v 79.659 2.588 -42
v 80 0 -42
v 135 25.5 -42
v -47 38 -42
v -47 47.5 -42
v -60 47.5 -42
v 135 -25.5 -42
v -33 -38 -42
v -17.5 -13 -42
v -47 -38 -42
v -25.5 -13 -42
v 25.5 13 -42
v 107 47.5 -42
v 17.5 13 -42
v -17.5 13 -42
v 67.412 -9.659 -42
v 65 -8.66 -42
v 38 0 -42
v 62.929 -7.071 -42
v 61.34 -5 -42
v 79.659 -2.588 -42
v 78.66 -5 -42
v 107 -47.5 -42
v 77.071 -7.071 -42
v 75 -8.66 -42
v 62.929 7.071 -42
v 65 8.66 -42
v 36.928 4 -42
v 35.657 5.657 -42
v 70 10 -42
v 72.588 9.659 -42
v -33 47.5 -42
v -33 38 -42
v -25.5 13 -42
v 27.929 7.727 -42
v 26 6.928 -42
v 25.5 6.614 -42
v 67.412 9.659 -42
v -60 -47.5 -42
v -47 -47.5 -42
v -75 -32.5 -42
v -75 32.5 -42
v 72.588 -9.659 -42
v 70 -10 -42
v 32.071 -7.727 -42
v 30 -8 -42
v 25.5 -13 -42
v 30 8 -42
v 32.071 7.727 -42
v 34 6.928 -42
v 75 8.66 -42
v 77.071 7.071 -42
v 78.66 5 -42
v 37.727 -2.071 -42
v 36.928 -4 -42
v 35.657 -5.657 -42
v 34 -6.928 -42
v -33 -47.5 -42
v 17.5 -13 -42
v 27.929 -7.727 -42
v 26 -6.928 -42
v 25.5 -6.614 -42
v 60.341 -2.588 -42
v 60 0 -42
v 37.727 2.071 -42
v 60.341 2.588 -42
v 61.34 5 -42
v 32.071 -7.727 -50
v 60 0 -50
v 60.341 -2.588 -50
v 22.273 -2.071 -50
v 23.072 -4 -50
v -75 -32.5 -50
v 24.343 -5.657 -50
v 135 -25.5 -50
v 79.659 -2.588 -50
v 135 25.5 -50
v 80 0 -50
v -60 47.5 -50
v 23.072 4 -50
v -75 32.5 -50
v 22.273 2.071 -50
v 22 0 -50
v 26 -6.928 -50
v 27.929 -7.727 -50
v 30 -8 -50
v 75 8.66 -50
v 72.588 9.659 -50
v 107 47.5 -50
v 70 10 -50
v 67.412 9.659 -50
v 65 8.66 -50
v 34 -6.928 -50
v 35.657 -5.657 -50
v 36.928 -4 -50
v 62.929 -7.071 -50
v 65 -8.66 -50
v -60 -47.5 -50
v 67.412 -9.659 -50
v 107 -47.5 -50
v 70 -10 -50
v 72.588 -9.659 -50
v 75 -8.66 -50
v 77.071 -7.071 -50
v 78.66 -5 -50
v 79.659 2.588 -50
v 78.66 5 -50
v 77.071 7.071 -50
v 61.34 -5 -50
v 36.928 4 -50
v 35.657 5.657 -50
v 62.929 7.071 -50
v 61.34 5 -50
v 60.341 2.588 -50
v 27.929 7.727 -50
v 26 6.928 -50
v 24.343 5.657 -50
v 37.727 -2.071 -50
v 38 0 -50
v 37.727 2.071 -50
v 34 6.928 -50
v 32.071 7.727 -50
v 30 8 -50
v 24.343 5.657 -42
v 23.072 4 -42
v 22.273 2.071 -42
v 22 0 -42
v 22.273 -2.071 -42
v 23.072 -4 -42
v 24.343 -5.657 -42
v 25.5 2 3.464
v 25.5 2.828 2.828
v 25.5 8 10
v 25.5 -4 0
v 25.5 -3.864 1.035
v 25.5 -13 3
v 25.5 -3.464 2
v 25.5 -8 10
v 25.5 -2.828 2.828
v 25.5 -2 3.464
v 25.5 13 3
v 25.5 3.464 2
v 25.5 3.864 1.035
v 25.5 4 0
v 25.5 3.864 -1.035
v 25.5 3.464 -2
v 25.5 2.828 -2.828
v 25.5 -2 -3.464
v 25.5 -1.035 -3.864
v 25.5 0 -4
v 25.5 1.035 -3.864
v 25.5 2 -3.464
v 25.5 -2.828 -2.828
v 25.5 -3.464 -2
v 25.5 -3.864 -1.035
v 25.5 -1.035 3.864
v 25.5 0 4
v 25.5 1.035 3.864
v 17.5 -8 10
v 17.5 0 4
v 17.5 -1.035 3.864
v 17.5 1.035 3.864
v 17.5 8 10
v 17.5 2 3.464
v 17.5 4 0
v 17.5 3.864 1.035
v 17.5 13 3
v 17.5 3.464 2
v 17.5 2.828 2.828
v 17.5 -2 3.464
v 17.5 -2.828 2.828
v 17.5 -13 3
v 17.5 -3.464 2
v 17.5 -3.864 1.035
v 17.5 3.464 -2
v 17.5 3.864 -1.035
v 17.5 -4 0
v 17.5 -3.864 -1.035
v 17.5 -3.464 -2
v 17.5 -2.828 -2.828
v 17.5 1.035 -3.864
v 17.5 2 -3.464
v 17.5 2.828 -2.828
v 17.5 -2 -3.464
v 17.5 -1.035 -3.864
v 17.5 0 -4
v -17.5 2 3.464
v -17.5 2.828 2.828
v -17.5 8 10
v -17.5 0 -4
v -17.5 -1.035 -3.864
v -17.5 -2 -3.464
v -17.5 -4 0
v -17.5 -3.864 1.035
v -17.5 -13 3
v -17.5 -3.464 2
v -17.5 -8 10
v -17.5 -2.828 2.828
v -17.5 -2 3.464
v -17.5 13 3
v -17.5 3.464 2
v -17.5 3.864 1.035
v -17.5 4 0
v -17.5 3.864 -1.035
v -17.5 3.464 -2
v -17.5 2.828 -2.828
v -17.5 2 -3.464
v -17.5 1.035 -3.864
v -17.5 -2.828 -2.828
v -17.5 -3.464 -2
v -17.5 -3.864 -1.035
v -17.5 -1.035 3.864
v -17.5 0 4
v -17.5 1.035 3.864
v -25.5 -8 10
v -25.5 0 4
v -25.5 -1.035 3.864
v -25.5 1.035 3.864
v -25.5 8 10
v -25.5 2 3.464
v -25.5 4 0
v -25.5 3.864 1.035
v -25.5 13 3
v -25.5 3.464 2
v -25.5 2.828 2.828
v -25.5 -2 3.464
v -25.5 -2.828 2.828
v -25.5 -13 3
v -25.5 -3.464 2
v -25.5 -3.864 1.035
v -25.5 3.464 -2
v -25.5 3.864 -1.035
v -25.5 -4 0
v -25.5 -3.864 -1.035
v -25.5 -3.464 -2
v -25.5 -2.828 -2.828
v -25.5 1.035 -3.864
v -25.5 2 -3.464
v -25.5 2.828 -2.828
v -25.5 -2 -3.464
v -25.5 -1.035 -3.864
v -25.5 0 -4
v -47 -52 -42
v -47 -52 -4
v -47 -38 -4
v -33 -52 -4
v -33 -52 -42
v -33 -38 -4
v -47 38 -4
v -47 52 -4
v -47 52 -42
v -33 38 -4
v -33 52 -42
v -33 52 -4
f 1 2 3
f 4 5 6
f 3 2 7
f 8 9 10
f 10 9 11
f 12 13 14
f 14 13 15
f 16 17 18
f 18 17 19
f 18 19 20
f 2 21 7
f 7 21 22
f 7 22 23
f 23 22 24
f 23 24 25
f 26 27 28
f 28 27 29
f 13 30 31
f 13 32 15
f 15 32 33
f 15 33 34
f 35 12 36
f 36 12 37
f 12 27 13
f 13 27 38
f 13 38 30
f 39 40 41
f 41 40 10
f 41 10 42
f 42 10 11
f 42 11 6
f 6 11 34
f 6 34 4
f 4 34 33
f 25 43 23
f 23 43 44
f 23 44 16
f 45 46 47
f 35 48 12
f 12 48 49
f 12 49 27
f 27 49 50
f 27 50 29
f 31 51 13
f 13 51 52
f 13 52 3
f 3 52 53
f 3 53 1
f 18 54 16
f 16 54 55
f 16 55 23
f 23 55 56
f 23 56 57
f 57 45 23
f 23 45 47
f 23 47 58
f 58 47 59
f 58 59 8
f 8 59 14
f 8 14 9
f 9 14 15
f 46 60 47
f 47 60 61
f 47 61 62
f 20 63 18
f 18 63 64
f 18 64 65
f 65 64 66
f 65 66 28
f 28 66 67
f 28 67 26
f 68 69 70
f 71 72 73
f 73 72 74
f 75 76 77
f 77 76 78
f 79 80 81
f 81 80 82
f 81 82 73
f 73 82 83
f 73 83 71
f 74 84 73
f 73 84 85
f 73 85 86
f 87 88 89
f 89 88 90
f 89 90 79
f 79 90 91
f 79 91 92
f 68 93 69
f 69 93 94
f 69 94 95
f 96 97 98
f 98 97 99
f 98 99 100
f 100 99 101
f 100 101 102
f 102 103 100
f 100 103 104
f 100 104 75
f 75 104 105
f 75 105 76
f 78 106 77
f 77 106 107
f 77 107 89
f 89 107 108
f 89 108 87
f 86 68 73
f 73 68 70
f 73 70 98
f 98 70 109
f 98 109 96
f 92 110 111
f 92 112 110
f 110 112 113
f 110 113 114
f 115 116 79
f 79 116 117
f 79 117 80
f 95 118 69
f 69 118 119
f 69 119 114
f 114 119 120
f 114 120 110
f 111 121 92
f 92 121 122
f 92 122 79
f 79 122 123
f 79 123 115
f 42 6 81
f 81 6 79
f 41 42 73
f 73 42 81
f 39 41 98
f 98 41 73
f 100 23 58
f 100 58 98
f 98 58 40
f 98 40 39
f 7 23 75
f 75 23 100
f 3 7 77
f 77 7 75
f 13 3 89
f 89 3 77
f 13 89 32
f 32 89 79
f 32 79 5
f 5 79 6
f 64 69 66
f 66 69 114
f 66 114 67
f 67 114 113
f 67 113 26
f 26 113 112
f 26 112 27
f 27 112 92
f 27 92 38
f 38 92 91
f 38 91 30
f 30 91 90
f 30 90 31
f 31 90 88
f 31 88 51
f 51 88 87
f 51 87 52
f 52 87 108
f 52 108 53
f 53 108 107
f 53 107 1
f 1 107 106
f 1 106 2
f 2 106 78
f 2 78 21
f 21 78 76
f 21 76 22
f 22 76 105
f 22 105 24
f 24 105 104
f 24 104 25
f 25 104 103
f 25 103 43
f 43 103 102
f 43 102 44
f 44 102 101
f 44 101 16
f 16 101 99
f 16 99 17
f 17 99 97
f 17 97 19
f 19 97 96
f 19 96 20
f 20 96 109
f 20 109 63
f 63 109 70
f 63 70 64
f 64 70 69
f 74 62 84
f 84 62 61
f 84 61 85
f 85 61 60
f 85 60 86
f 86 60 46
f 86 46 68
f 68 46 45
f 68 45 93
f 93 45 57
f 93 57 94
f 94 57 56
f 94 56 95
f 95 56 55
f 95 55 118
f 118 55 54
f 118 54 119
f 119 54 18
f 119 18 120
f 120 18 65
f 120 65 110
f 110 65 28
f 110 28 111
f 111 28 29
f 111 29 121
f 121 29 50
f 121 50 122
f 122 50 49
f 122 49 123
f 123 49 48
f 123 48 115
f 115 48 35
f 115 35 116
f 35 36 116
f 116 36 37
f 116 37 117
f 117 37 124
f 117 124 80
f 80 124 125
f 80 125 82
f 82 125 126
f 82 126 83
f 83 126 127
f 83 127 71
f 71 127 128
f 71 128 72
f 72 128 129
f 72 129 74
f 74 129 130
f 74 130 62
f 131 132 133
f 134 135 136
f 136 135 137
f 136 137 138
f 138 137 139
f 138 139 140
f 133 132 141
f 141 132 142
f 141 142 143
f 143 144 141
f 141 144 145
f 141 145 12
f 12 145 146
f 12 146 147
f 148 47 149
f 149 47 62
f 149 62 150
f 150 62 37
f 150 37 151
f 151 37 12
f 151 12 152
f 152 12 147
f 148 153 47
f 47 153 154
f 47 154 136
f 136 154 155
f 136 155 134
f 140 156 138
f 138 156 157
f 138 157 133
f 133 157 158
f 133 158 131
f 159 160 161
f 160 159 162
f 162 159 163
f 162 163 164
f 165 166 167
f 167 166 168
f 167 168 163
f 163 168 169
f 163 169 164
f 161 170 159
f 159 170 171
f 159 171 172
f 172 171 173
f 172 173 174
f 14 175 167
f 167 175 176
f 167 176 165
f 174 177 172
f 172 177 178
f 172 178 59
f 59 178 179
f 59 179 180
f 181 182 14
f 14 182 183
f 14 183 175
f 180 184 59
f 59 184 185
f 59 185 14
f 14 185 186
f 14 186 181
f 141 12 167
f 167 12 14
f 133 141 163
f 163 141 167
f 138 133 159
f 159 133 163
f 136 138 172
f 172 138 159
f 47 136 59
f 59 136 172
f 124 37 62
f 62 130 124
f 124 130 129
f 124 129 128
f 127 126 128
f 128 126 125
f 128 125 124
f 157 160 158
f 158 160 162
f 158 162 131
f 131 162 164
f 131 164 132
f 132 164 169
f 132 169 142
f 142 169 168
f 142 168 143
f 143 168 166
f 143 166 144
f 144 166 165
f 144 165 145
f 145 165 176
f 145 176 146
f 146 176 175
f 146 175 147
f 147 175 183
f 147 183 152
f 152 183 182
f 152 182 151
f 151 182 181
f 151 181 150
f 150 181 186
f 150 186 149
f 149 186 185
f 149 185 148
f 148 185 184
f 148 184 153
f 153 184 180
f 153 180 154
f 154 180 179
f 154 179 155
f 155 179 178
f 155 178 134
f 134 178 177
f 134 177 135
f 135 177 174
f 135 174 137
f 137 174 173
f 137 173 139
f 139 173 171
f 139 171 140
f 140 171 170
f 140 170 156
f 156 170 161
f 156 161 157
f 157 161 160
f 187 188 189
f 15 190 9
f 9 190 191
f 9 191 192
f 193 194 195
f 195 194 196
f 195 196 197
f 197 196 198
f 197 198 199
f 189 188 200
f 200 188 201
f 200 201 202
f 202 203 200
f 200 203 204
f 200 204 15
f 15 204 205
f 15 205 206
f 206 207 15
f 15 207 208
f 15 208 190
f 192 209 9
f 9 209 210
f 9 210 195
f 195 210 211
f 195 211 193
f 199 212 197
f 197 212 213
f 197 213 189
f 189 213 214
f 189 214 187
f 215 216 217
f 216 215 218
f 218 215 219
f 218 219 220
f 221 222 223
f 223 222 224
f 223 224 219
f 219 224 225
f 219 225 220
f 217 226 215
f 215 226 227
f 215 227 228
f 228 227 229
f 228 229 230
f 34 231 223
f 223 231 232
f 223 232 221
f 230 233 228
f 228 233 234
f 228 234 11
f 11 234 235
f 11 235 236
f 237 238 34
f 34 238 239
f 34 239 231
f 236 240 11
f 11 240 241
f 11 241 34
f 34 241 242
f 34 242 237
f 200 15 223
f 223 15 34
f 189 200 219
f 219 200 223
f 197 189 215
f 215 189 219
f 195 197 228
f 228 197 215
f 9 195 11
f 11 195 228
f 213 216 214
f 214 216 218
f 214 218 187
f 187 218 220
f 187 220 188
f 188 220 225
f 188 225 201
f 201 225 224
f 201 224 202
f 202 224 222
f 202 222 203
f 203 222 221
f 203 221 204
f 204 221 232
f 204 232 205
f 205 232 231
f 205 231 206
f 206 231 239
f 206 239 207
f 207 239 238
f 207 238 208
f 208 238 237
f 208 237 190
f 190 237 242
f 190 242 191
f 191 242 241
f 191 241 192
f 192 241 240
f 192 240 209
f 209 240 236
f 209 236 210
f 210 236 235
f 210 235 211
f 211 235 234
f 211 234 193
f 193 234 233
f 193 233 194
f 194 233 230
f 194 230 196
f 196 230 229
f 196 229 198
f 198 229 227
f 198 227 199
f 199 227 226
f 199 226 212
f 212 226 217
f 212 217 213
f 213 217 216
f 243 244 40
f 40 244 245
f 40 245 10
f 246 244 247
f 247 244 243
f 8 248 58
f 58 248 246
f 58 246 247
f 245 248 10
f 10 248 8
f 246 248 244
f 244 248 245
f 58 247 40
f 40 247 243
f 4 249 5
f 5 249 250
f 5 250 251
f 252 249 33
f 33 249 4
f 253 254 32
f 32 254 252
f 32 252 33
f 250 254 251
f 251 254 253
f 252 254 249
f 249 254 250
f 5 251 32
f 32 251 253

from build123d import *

# Parameters (mm, degrees)
SK_SOLE_PLATE_R    = 10
SK_SOLE_PLATE_R_2  = 8
SOLE_PLATE_DEPTH   = 8
SK_CLEVIS_FRONT_R  = 4
CLEVIS_FRONT_DEPTH = 8
SK_CLEVIS_BACK_R   = 4
CLEVIS_BACK_DEPTH  = 8
SK_POST_LAT_W      = 14
SK_POST_LAT_H      = 14
POST_LAT_DEPTH     = 38
SK_POST_MED_W      = 14
SK_POST_MED_H      = 14
POST_MED_DEPTH     = 38


with BuildPart() as part:
    # SK_Sole_Plate → Sole_Plate (new body)
    with BuildSketch(Plane.XY.offset(-50)):
        Polygon((-60, 47.5), (107, 47.5), (135, 25.5), (135, -25.5), (107, -47.5), (-60, -47.5), (-75, -32.5), (-75, 32.5), align=None)
        with Locations((70, 0)):
            Circle(SK_SOLE_PLATE_R, mode=Mode.SUBTRACT)
        with Locations((30, 0)):
            Circle(SK_SOLE_PLATE_R_2, mode=Mode.SUBTRACT)
    extrude(amount=SOLE_PLATE_DEPTH)

    # SK_Clevis_Front → Clevis_Front (add)
    with BuildSketch(Plane(origin=(17.5, 0, 0), x_dir=(0, 0, -1), z_dir=(1, 0, 0))):
        Polygon((42, 13), (42, -13), (-3, -13), (-10, -8), (-10, 8), (-3, 13), align=None)
        Circle(SK_CLEVIS_FRONT_R, mode=Mode.SUBTRACT)
    extrude(amount=CLEVIS_FRONT_DEPTH)

    # SK_Clevis_Back → Clevis_Back (add)
    with BuildSketch(Plane(origin=(-25.5, 0, 0), x_dir=(0, 0, -1), z_dir=(1, 0, 0))):
        Polygon((42, 13), (42, -13), (-3, -13), (-10, -8), (-10, 8), (-3, 13), align=None)
        Circle(SK_CLEVIS_BACK_R, mode=Mode.SUBTRACT)
    extrude(amount=CLEVIS_BACK_DEPTH)

    # SK_Post_Lat → Post_Lat (add)
    with BuildSketch(Plane.XY.offset(-42)):
        with Locations((-40, -45)):
            Rectangle(SK_POST_LAT_W, SK_POST_LAT_H)
    extrude(amount=POST_LAT_DEPTH)

    # SK_Post_Med → Post_Med (add)
    with BuildSketch(Plane.XY.offset(-42)):
        with Locations((-40, 45)):
            Rectangle(SK_POST_MED_W, SK_POST_MED_H)
    extrude(amount=POST_MED_DEPTH)


solid = part.part
